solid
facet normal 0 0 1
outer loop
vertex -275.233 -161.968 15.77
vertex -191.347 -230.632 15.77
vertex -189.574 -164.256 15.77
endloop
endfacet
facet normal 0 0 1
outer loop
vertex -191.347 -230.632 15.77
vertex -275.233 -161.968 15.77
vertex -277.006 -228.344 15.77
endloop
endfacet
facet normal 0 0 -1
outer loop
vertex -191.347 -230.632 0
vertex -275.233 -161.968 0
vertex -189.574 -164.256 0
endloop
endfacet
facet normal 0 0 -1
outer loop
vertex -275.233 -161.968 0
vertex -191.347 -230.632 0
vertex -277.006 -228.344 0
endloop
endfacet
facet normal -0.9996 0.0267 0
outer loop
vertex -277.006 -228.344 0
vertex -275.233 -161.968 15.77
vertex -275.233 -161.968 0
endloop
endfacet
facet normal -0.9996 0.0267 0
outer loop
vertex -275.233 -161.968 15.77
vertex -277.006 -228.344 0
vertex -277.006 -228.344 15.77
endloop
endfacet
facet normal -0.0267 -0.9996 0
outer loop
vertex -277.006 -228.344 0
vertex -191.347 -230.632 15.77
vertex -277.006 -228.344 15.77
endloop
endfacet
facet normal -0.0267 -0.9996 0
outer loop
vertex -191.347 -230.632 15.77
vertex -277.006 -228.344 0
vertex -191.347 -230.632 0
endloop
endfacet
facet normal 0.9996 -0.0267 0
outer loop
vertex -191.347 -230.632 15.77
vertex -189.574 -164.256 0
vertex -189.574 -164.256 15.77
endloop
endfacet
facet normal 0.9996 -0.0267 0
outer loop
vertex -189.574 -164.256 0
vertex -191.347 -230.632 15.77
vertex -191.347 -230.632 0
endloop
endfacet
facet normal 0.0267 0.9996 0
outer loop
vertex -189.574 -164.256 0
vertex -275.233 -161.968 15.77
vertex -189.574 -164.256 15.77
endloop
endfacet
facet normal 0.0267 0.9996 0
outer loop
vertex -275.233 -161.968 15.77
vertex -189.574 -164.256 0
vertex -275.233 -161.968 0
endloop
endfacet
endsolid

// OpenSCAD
translate([-233.290, -196.300, 0]) rotate([0, 0, -91.530]) translate([-33.200, -42.845, 0]) cube([66.400, 85.690, 15.770]);
